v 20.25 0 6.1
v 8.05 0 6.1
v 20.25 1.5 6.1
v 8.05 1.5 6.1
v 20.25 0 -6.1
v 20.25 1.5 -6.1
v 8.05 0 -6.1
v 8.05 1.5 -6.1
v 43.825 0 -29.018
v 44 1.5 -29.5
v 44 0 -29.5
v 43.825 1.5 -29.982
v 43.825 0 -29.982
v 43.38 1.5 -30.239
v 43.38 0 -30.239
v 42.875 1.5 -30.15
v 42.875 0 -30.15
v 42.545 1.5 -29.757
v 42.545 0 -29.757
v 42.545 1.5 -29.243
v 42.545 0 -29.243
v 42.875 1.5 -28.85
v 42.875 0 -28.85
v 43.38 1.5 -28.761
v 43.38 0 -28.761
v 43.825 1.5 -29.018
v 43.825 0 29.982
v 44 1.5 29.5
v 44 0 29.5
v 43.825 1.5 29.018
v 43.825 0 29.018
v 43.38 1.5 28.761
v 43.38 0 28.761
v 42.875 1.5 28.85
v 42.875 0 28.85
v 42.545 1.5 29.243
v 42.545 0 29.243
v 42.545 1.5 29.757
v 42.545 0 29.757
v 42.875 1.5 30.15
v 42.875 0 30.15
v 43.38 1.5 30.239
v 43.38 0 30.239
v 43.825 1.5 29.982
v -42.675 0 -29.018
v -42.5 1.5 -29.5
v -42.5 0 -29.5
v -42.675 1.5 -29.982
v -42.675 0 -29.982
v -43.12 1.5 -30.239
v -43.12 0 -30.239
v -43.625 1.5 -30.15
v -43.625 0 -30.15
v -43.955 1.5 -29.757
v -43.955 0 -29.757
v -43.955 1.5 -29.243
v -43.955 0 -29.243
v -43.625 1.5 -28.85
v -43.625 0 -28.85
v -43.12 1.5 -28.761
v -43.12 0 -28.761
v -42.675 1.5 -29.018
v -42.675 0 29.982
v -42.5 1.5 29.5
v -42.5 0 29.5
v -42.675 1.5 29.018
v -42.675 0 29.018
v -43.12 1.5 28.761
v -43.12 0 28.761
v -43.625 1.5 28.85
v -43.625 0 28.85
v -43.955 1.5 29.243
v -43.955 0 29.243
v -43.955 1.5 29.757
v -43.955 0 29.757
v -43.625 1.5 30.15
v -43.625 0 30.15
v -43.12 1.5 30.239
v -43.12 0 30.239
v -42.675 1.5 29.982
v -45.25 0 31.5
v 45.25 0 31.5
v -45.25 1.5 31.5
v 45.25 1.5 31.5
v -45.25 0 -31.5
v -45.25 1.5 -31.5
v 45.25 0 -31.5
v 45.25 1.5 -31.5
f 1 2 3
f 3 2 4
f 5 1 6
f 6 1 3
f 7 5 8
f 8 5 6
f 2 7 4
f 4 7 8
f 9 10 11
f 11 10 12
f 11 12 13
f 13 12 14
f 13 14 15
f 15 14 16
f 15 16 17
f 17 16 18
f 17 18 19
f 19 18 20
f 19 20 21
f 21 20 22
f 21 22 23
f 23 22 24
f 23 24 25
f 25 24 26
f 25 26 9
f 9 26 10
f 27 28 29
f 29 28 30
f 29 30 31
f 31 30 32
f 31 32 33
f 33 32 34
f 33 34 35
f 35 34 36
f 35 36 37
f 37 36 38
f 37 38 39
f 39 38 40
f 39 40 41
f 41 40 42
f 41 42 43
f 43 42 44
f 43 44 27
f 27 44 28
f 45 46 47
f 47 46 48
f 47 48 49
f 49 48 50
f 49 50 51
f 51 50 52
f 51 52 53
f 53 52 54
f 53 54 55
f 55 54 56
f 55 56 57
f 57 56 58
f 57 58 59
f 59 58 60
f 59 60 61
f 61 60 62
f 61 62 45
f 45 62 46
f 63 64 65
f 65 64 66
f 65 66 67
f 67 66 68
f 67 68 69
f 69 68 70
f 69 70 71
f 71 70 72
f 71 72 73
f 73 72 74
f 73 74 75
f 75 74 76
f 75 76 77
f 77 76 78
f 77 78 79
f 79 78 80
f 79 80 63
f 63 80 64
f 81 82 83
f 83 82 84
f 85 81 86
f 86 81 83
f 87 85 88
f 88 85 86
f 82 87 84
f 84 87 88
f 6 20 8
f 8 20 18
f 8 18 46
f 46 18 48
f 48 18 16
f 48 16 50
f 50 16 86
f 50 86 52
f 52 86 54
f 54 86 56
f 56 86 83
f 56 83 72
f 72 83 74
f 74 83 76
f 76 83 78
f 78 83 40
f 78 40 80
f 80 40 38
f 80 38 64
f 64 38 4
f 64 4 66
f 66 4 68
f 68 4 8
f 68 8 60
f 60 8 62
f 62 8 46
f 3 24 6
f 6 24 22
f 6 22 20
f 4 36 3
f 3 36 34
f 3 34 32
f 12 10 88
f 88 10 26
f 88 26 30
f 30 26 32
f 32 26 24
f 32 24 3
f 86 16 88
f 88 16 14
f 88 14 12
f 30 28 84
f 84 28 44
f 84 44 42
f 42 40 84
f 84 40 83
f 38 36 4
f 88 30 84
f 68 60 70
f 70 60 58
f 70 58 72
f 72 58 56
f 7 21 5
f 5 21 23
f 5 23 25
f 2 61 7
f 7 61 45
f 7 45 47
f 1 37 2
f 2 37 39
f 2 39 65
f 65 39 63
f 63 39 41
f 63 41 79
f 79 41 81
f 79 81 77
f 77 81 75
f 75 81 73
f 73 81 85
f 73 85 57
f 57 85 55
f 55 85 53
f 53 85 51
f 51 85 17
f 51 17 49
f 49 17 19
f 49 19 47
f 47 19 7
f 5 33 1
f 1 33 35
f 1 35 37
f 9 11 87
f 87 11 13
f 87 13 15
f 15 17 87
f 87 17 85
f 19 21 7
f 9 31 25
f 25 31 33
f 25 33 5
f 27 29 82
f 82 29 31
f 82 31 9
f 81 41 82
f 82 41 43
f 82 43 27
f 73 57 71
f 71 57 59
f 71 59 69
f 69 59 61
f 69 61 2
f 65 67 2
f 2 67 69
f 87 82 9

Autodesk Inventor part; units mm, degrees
ref_plane "YZ Plane" through (0, 0, 0) normal (1, 0, 0) x (0, 1, 0)
ref_plane "XZ Plane" through (0, 0, 0) normal (0, 1, 0) x (-1, 0, 0)
ref_plane "XY Plane" through (0, 0, 0) normal (0, 0, 1) x (1, 0, 0)
sketch "Sketch1" plane through (0, 0, 0) normal (0, 1, 0) x (-1, 0, 0)
  line L0 (45.25, 31.5) -> (-45.25, 31.5)
  line L1 (-45.25, 31.5) -> (-45.25, -31.5)
  line L2 (-45.25, -31.5) -> (45.25, -31.5)
  line L3 (45.25, -31.5) -> (45.25, 31.5)
  line L4 (45.25, 31.5) -> (-45.25, -31.5) construction
  line L5 (-45.25, 31.5) -> (45.25, -31.5) construction
  point P0 (0, 0)
  dimension "d0" = 63
  dimension "d1" = 90.5
extrude "Extrusion1" add sketch "Sketch1" along normal blind 1.5
sketch "Sketch2" plane through (0, 1.5, 0) normal (0, 1, 0) x (1, 0, 0)
  circle A0 centre (-43.25, -29.5) radius 0.75
  line L0 (-45.25, 31.5) -> (-45.25, -31.5) projected
  line L1 (-45.25, -31.5) -> (45.25, -31.5) projected
  circle A1 centre (-43.25, 29.5) radius 0.75
  line L2 (45.25, 31.5) -> (-45.25, 31.5) projected
  circle A2 centre (43.25, -29.5) radius 0.75
  line L3 (45.25, -31.5) -> (45.25, 31.5) projected
  circle A3 centre (43.25, 29.5) radius 0.75
  point P0 (0, 0)
  dimension "d4" = 2
  dimension "d5" = 2
  dimension "d6" = 1.5
  dimension "d7" = 2
  dimension "d8" = 2
  dimension "d9" = 1.5
  dimension "d10" = 2
  dimension "d11" = 2
  dimension "d12" = 1.5
  dimension "d13" = 1.5
  dimension "d14" = 2
  dimension "d15" = 2
extrude "Extrusion2" cut sketch "Sketch2" against normal blind 1.5 contours A0 | A1 | A2 | A3
sketch "Sketch6" plane through (0, 1.5, 0) normal (0, 1, 0) x (1, 0, 0)
  line L0 (8.05, -6.1) -> (20.25, -6.1)
  line L1 (20.25, -6.1) -> (20.25, 6.1)
  line L2 (20.25, 6.1) -> (8.05, 6.1)
  line L3 (8.05, 6.1) -> (8.05, -6.1)
  line L4 (-45.25, -31.5) -> (45.25, -31.5) projected
  line L5 (45.25, -31.5) -> (45.25, 31.5) projected
  point P0 (0, 0)
  dimension "d42" = 12.2
  dimension "d43" = 12.2
  dimension "d44" = 25.4
  dimension "d45" = 25
extrude "Extrusion6" cut sketch "Sketch6" against normal blind 10
properties part number "remoteswitchlid"
